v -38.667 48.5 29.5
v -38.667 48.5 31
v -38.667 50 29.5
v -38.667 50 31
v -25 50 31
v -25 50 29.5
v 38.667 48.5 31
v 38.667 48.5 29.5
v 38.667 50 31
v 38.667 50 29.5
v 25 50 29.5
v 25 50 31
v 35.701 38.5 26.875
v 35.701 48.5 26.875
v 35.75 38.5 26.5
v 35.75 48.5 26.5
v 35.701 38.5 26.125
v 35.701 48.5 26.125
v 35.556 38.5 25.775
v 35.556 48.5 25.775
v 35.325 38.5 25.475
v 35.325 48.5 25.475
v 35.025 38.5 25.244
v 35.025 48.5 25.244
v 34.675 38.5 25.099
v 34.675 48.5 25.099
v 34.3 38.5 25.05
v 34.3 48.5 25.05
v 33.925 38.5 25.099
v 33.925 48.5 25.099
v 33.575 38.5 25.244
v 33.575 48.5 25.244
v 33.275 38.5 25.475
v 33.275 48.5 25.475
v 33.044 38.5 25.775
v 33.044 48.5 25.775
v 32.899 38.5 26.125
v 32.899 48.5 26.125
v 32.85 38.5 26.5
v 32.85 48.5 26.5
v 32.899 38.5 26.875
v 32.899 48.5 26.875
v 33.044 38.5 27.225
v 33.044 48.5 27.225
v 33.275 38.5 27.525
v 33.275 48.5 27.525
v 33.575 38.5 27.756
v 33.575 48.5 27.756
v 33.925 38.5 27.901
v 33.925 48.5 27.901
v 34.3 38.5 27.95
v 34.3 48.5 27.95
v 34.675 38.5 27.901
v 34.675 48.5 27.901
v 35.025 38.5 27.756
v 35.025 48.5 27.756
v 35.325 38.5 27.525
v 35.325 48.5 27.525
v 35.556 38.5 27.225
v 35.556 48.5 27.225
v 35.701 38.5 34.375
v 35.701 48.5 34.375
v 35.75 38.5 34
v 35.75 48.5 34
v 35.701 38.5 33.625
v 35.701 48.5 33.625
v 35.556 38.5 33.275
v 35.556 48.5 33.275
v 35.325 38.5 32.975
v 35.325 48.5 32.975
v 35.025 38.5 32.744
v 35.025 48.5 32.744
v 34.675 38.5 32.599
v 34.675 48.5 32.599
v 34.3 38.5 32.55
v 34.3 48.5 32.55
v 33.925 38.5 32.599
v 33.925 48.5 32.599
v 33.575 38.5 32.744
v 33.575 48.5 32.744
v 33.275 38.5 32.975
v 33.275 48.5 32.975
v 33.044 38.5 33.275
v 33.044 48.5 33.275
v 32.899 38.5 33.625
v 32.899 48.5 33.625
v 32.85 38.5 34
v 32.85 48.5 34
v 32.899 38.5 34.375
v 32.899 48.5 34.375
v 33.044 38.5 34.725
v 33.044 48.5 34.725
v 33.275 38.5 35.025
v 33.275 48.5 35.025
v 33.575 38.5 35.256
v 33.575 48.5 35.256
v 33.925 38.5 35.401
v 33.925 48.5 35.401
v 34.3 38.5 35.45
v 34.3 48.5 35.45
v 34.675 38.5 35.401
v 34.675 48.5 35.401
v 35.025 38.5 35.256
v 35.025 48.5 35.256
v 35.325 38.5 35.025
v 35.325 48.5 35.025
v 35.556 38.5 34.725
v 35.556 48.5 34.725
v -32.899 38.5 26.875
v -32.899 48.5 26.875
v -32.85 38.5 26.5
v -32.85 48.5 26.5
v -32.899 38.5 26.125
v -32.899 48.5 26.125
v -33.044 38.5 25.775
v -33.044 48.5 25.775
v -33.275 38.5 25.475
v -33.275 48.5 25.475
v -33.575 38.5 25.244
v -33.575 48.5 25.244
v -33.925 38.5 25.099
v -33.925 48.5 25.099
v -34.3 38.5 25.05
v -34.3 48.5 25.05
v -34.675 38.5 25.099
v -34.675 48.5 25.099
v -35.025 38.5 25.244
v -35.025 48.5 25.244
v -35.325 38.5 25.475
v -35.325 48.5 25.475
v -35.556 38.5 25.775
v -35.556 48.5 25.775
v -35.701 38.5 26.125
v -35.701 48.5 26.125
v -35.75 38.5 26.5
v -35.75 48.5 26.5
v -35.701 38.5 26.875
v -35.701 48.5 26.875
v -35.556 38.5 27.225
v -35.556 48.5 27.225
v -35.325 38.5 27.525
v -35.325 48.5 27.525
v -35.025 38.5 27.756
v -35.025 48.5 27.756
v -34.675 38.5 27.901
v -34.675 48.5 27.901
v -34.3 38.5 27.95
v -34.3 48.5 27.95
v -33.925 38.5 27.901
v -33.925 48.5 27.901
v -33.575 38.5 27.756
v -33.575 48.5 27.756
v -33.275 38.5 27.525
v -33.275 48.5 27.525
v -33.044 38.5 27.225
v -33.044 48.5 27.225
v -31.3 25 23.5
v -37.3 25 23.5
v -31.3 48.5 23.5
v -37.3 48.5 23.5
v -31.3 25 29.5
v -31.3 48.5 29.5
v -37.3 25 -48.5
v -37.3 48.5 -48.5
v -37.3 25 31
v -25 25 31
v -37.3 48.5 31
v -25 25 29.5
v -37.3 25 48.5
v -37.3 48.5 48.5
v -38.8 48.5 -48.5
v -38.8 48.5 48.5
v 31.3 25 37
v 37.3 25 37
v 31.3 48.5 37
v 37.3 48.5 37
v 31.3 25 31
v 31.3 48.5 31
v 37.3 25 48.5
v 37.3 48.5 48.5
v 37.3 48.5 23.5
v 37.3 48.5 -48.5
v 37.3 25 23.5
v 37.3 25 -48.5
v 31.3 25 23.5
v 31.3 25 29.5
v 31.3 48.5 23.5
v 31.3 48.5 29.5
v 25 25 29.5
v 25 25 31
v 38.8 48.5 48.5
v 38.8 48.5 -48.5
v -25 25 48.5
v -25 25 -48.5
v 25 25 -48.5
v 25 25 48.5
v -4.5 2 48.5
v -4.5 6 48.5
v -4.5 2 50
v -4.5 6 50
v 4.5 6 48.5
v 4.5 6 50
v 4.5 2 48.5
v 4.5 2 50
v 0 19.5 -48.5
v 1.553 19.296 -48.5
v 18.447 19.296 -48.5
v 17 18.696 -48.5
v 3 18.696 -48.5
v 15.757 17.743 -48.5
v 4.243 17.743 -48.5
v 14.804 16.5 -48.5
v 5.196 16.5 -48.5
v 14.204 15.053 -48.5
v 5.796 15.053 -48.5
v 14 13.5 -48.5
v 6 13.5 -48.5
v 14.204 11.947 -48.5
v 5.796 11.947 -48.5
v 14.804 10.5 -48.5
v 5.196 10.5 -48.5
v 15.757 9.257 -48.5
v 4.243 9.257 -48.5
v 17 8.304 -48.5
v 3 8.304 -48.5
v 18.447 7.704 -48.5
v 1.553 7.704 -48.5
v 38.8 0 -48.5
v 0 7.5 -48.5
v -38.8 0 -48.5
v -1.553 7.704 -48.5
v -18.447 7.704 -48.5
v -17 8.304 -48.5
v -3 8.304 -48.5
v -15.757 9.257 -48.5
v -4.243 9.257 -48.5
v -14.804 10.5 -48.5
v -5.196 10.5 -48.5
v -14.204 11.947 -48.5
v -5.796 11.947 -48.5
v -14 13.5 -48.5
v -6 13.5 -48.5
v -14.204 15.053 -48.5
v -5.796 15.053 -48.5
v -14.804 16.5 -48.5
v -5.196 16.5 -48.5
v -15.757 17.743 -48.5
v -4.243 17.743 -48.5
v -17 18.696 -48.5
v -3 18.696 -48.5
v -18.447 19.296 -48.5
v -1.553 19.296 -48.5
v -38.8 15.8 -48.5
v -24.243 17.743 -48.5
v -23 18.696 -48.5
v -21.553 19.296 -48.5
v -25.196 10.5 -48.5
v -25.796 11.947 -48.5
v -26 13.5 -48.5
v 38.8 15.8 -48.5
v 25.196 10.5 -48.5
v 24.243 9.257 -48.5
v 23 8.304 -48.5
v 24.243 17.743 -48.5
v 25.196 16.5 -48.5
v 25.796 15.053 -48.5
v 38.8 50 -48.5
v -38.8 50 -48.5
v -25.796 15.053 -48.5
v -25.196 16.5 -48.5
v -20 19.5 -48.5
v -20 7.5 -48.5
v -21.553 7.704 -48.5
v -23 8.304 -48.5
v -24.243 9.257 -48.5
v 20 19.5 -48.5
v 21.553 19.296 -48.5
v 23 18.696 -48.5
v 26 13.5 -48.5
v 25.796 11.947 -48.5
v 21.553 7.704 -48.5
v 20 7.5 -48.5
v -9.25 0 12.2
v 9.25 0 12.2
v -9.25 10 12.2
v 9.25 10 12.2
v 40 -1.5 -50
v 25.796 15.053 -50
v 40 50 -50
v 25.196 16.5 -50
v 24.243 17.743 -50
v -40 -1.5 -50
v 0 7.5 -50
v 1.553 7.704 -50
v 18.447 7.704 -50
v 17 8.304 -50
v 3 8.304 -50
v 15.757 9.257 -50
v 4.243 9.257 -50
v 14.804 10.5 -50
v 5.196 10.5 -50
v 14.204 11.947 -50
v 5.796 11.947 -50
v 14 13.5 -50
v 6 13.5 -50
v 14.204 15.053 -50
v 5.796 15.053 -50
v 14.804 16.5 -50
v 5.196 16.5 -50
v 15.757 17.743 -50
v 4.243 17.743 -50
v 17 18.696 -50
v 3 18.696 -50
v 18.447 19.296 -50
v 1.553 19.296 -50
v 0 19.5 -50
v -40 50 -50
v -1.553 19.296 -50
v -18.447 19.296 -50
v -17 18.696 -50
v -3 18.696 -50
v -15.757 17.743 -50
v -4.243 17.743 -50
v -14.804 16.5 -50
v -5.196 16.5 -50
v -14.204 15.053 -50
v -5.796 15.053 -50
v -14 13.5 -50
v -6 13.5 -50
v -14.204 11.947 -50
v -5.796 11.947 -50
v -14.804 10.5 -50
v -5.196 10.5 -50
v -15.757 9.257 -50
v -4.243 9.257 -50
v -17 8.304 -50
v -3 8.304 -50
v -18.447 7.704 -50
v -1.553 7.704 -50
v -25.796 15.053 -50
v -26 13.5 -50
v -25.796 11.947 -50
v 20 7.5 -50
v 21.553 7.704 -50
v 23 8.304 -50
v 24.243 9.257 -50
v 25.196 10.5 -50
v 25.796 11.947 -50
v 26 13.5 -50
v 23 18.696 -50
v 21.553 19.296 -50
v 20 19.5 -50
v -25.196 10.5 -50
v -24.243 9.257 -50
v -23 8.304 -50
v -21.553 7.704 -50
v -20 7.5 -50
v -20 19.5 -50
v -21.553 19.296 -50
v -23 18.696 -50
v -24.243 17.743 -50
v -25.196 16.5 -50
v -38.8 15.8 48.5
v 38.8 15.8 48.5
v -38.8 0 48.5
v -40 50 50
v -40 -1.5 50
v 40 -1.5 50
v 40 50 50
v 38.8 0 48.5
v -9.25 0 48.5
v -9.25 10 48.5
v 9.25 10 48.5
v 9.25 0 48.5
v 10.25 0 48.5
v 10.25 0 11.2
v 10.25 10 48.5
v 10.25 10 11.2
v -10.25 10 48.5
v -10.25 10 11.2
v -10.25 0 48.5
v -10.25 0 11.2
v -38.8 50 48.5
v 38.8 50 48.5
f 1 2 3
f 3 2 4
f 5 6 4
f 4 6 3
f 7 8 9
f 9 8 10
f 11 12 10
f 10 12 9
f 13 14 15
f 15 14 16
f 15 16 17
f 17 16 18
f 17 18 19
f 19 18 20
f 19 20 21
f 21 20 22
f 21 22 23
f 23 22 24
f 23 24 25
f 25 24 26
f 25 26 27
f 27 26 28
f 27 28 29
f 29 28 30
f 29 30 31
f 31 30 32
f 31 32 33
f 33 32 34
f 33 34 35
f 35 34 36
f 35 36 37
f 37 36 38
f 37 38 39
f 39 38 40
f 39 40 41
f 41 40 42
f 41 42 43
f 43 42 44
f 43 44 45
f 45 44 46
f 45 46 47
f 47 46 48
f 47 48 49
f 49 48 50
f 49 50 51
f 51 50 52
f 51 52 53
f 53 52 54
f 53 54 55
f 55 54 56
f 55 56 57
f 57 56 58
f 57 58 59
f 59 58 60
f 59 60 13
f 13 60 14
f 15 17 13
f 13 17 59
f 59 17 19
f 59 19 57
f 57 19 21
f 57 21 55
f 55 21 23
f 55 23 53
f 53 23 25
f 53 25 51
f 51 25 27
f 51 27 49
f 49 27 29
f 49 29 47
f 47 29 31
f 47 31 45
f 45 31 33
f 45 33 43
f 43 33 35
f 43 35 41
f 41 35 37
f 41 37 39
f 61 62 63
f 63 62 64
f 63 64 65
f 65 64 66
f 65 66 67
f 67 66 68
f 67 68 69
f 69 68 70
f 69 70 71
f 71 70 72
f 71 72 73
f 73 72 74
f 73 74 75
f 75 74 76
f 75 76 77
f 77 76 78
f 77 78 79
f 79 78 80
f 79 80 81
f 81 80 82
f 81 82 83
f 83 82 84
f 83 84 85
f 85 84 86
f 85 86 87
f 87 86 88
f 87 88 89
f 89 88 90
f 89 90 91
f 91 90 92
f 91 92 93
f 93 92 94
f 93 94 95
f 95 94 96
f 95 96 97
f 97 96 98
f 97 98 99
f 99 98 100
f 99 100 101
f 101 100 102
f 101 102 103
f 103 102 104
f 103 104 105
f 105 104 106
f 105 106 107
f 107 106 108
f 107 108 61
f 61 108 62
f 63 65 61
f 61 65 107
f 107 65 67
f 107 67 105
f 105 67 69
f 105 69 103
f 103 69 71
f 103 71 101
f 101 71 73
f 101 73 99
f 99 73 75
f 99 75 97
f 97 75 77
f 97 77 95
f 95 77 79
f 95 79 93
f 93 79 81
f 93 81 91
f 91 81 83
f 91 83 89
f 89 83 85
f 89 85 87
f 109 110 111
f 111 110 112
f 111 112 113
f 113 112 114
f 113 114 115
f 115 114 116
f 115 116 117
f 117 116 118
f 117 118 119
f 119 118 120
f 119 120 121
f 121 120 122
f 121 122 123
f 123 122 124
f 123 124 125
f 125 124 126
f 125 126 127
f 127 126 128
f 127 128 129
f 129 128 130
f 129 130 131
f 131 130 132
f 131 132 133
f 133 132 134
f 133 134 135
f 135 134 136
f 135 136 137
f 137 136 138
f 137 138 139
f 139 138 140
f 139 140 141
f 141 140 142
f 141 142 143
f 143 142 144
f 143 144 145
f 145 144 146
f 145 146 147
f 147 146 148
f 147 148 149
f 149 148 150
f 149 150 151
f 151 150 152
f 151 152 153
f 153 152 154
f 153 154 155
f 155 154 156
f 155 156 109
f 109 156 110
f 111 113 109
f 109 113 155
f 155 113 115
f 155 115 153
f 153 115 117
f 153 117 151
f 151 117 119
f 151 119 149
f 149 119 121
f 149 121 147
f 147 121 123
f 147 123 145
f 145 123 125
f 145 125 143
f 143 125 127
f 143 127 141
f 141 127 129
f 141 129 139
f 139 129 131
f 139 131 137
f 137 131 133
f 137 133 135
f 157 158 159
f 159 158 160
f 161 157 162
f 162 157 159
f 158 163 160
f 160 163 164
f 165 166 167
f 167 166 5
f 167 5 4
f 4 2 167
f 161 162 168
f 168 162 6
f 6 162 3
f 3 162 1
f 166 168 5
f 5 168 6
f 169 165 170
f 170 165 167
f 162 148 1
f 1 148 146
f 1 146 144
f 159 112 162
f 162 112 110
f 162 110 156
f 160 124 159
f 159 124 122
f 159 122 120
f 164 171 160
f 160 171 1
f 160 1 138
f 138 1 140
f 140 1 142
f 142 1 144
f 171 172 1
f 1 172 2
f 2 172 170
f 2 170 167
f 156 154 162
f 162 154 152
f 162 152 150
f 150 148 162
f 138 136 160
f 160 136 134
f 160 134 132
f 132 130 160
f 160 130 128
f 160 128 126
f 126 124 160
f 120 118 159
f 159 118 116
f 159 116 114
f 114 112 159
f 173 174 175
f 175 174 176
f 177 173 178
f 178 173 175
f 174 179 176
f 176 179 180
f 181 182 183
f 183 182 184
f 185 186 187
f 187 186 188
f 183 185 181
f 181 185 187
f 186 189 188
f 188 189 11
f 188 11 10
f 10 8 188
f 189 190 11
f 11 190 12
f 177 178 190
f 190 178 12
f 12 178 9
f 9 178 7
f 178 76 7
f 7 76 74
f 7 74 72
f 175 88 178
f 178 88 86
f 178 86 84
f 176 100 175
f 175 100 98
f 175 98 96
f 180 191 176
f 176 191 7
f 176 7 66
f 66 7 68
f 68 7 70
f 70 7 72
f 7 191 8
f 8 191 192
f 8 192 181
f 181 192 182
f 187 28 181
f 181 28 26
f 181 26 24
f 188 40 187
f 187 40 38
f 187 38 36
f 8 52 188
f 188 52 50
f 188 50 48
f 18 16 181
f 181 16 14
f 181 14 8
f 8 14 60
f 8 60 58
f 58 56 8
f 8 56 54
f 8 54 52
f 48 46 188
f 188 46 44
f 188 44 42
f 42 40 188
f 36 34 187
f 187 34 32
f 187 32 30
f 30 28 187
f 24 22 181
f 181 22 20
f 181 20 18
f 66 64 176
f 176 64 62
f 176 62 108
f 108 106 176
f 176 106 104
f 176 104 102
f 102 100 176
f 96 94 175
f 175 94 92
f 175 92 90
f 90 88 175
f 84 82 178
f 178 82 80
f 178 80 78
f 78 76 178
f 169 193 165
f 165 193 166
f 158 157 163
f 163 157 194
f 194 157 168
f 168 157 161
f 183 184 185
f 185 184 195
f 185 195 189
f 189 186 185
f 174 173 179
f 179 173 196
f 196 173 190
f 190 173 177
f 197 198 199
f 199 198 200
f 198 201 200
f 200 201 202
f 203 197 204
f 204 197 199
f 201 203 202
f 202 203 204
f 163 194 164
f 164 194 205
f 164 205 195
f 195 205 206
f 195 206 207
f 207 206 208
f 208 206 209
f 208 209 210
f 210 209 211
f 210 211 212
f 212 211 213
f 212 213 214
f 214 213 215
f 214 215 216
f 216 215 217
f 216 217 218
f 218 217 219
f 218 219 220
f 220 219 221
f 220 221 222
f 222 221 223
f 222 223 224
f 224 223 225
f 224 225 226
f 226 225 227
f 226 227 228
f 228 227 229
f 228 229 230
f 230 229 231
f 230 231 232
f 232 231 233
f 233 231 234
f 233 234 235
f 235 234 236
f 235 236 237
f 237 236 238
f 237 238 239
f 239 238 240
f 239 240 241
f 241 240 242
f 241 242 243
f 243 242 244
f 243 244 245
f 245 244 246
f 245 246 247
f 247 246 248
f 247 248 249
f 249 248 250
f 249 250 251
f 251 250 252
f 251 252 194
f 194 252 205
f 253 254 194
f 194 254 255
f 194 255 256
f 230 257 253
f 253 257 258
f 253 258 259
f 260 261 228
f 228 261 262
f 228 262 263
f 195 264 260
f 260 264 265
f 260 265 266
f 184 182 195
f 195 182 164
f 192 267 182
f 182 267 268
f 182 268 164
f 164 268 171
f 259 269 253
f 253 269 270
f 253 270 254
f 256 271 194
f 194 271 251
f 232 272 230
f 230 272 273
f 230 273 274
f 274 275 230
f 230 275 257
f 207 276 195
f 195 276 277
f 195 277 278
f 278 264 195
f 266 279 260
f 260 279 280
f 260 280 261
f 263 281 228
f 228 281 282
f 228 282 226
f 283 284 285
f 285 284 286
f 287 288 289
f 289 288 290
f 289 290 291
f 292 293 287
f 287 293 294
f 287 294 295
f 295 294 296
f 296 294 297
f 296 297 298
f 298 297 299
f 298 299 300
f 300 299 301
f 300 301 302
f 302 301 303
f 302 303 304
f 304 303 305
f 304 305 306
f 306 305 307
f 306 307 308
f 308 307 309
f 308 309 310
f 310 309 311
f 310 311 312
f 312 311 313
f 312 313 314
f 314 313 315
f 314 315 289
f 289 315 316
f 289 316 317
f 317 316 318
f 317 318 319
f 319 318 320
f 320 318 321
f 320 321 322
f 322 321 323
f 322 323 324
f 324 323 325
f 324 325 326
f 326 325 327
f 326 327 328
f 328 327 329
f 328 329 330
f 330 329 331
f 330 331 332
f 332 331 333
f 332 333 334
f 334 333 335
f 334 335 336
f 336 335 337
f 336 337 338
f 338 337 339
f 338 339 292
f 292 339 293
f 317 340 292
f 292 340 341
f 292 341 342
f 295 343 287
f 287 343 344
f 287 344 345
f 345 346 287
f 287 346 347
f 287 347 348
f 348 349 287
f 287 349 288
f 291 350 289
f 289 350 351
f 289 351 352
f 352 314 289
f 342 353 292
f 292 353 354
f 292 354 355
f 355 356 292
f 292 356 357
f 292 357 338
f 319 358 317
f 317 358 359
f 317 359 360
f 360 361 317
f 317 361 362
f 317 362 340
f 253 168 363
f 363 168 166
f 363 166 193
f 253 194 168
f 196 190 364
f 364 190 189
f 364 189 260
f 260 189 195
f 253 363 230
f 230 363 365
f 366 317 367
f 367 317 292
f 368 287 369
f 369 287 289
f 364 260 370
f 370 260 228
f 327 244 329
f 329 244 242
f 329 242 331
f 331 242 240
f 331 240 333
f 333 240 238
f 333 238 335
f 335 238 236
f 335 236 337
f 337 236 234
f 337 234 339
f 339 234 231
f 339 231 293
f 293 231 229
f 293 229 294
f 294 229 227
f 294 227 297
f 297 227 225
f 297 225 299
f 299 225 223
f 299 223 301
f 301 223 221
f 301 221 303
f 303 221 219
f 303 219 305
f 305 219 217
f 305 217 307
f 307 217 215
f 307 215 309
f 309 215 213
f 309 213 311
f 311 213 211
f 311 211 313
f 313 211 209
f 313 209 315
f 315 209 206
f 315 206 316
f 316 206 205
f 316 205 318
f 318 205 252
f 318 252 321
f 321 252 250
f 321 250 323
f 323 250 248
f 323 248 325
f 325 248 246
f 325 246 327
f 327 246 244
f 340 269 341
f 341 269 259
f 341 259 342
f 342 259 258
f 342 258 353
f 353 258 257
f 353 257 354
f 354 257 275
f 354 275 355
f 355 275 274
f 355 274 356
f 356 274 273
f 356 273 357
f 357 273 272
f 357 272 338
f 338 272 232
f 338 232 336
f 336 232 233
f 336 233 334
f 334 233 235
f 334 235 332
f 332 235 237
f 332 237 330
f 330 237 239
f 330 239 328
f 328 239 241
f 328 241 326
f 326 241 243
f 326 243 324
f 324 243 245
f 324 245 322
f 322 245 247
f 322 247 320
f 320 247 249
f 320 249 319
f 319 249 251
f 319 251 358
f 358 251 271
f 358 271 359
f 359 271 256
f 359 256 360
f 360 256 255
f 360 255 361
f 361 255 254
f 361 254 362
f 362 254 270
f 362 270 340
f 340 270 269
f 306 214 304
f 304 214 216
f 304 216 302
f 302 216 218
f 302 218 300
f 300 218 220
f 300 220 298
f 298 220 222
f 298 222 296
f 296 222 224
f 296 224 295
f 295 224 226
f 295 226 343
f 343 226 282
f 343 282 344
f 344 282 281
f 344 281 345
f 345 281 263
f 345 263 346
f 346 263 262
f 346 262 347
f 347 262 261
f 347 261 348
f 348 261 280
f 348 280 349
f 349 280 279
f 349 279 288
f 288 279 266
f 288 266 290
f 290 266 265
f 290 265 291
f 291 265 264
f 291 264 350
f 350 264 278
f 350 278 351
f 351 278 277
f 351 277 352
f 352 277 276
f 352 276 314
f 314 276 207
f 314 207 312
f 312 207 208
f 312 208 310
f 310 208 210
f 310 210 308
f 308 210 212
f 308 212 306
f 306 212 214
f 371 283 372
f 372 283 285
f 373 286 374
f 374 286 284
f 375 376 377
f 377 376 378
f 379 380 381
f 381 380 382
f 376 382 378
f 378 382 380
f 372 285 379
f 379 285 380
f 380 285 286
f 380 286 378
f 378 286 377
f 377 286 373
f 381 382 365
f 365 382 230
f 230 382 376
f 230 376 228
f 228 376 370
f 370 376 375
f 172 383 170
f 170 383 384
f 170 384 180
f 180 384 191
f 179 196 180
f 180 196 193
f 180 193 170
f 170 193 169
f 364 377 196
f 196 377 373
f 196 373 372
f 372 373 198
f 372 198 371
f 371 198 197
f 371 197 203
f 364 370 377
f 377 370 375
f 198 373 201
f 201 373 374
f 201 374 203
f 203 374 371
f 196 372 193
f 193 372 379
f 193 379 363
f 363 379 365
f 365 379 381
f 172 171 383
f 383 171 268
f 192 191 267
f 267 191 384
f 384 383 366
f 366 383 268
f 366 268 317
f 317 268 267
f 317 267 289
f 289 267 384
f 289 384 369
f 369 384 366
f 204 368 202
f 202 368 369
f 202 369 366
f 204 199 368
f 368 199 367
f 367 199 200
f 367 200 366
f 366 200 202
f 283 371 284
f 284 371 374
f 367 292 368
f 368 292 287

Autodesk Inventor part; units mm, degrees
ref_plane "YZ Plane" through (0, 0, 0) normal (1, 0, 0) x (0, 1, 0)
ref_plane "XZ Plane" through (0, 0, 0) normal (0, 1, 0) x (-1, 0, 0)
ref_plane "XY Plane" through (0, 0, 0) normal (0, 0, 1) x (1, 0, 0)
sketch "Sketch1" plane through (0, 0, 0) normal (0, 1, 0) x (-1, 0, 0)
  line L0 (40, 50) -> (-40, 50)
  line L1 (-40, 50) -> (-40, -50)
  line L2 (-40, -50) -> (40, -50)
  line L3 (40, -50) -> (40, 50)
  line L4 (40, 50) -> (-40, -50) construction
  line L5 (-40, 50) -> (40, -50) construction
  point P0 (0, 0)
  dimension "box_width" = 80
  dimension "box_height" = 100
extrude "Base" add sketch "Sketch1" against normal blind 1.5
sketch "Sketch2" plane through (0, 0, 0) normal (0, 1, 0) x (-1, 0, 0)
  line L0 (40, -50) -> (-40, -50) projected
  line L1 (40, 50) -> (-40, 50)
  line L2 (-40, 50) -> (-40, -50)
  line L3 (-40, -50) -> (40, -50)
  line L4 (40, -50) -> (40, 50)
  line L5 (40, 50) -> (-40, -50) construction
  line L6 (-40, 50) -> (40, -50) construction
  line L7 (38.8, 48.5) -> (-38.8, 48.5)
  line L8 (-38.8, 48.5) -> (-38.8, -48.5)
  line L9 (-38.8, -48.5) -> (38.8, -48.5)
  line L10 (38.8, -48.5) -> (38.8, 48.5)
  line L11 (38.8, 48.5) -> (-38.8, -48.5) construction
  line L12 (-38.8, 48.5) -> (38.8, -48.5) construction
  point P0 (0, 0)
  dimension "wall_thickness" = 1.5
extrude "Wall" add sketch "Sketch2" along normal blind 50
sketch "Sketch3" plane through (0, 0, 0) normal (0, 1, 0) x (-1, 0, 0)
  line L0 (-9.25, 49) -> (9.25, 49)
  line L1 (9.25, 49) -> (9.25, 12.2)
  line L2 (9.25, 12.2) -> (-9.25, 12.2)
  line L3 (-9.25, 12.2) -> (-9.25, 49)
  line L4 (-9.25, 49) -> (9.25, 12.2) construction
  line L5 (9.25, 49) -> (-9.25, 12.2) construction
  line L6 (0, 30.6) -> (0, 0) construction
  line L7 (10.25, 50) -> (-10.25, 50)
  line L8 (-10.25, 50) -> (-10.25, 11.2)
  line L9 (-10.25, 11.2) -> (10.25, 11.2)
  line L10 (10.25, 11.2) -> (10.25, 50)
  line L11 (10.25, 50) -> (-10.25, 11.2) construction
  line L12 (-10.25, 50) -> (10.25, 11.2) construction
  line L13 (40, 50) -> (-40, 50) projected
  point P0 (0, 50)
  dimension "d7" = 36.8
  dimension "d8" = 18.5
  dimension "d9" = 1
  dimension "d10" = 1
extrude "Teensy Wall" add sketch "Sketch3" along normal blind 10
sketch "Sketch4" plane through (40, -1.5, -50) normal (0, 0, -1) x (-1, 0, 0)
  line L0 (78.8, 51.5) -> (1.2, 51.5) construction
  line L1 (1.2, 51.5) -> (78.8, 51.5) construction
  line L2 (40, 51.5) -> (40, 15) construction
  line L3 (40, 15) -> (20, 15) construction
  circle A0 centre (20, 15) radius 6
  line L4 (40, 15) -> (40, 0) construction
  line L5 (80, 0) -> (0, 0) construction
  circle A1 centre (40, 15) radius 6
  circle A2 centre (60, 15) radius 6
  dimension "d21" = 12
  dimension "d23" = 20
  dimension "d59" = 20
extrude "BNC Holes" cut sketch "Sketch4" against normal up to surface (1.5 mm away)
sketch "Sketch7" plane through (-38.8, 0, -48.5) normal (0, 0, 1) x (1, 0, 0)
  line L0 (78.8, 50) -> (-1.2, 50) projected
  line L1 (-1.2, -1.5) -> (-1.2, 50) projected
  line L2 (-1.2, 50) -> (-1.2, 25) construction
  line L3 (-1.2, 25) -> (13.8, 25)
  line L4 (13.8, 25) -> (-1.2, 15)
  line L5 (-1.2, 15) -> (-1.2, 25)
  line L6 (38.8, 50) -> (38.8, 0) construction
  line L7 (78.8, -1.5) -> (78.8, 50)
  line L8 (78.8, 50) -> (78.8, 25) construction
  line L9 (78.8, 25) -> (63.8, 25)
  line L10 (63.8, 25) -> (78.8, 15)
  line L11 (78.8, 15) -> (78.8, 25)
  point P0 (-1.2, 30)
  dimension "d32" = 25
  dimension "d33" = 10
  dimension "d34" = 15
extrude "Battery Support" add sketch "Sketch7" along normal up to next
sketch "Sketch8" plane through (-40, -1.5, 50) normal (0, 0, 1) x (1, 0, 0)
  line L0 (78.8, 51.5) -> (1.2, 51.5) construction
  line L1 (40, 51.5) -> (40, 1.5) construction
  line L2 (35.5, 3.5) -> (44.5, 3.5)
  line L3 (44.5, 3.5) -> (44.5, 7.5)
  line L4 (44.5, 7.5) -> (35.5, 7.5)
  line L5 (35.5, 7.5) -> (35.5, 3.5)
  line L6 (35.5, 3.5) -> (44.5, 7.5) construction
  line L7 (44.5, 3.5) -> (35.5, 7.5) construction
  point P0 (40, 5.5)
  dimension "d36" = 9
  dimension "d37" = 4
  dimension "d38" = 2
extrude "USB Hole" cut sketch "Sketch8" against normal up to next
sketch "Sketch9" plane through (-38.8, 25, -48.5) normal (0, 1, 0) x (1, 0, 0)
  line L0 (0, -97) -> (0, 0) projected
  line L1 (13.8, 0) -> (13.8, -97) projected
  line L2 (0, -79.5) -> (13.8, -79.5)
  line L3 (13.8, -79.5) -> (13.8, -78)
  line L4 (13.8, -78) -> (0, -78)
  line L5 (0, -78) -> (0, -79.5)
  line L6 (0, 0) -> (77.6, 0) projected
  line L7 (63.8, 0) -> (63.8, -97) projected
  line L8 (63.8, -79.5) -> (77.6, -79.5)
  line L9 (77.6, -79.5) -> (77.6, -78)
  line L10 (77.6, -78) -> (63.8, -78)
  line L11 (63.8, -78) -> (63.8, -79.5)
  line L12 (0, -97) -> (28.55, -97) projected
  line L13 (0, -79.5) -> (1.5, -79.5)
  line L14 (1.5, -79.5) -> (1.5, -97)
  line L15 (1.5, -97) -> (0, -97)
  line L16 (0, -97) -> (0, -79.5)
  line L17 (49.05, -97) -> (77.6, -97) projected
  line L18 (77.6, -79.5) -> (76.1, -79.5)
  line L19 (76.1, -79.5) -> (76.1, -97)
  line L20 (76.1, -97) -> (77.6, -97)
  line L21 (77.6, -97) -> (77.6, -79.5)
  line L22 (77.6, 0) -> (77.6, -97) projected
  line L23 (76.1, -79.5) -> (70.1, -79.5)
  line L24 (70.1, -79.5) -> (70.1, -85.5)
  line L25 (70.1, -85.5) -> (76.1, -85.5)
  line L26 (76.1, -85.5) -> (76.1, -79.5)
  line L27 (0, -78) -> (1.5, -78)
  line L28 (1.5, -78) -> (1.5, 0)
  line L29 (1.5, 0) -> (0, 0)
  line L30 (0, 0) -> (0, -78)
  line L31 (77.6, -78) -> (76.1, -78)
  line L32 (76.1, -78) -> (76.1, 0)
  line L33 (76.1, 0) -> (77.6, 0)
  line L34 (77.6, 0) -> (77.6, -78)
  line L35 (76.1, -78) -> (70.1, -78)
  line L36 (70.1, -78) -> (70.1, -72)
  line L37 (70.1, -72) -> (76.1, -72)
  line L38 (76.1, -72) -> (76.1, -78)
  line L39 (77.6, 0) -> (0, 0) projected
  line L40 (1.5, 0) -> (6.9705, 0)
  line L41 (1.5, -6.3005) -> (1.5, 0)
  line L42 (1.5, -78) -> (6.9, -78)
  line L43 (1.5, -72.6667) -> (1.5, -78)
  line L44 (1.5, -78) -> (6.9, -78)
  line L45 (1.5, -72) -> (1.5, -78)
  line L46 (1.5, -78) -> (7.5, -78)
  line L47 (7.5, -78) -> (7.5, -72)
  line L48 (7.5, -72) -> (1.5, -72)
  line L49 (1.5, -72) -> (1.5, -78)
  point P0 (38.8, -48.5)
  dimension "d41" = 78
  dimension "d42" = 1.5
  dimension "d45" = 1.5
  dimension "d47" = 1.5
  dimension "d48" = 6
  dimension "d56" = 17.5
extrude "Plate Support" add sketch "Sketch9" along normal blind 23.5 contours L0 L2 L14 L12 | L0 L4 L1 L2 | L0 L6 L28 L4 | L28 L48 L47 L4 | L6 L22 L10 L32 | L10 L9 L8 L7 | L32 L10 L36 L37 | L8 L19 L25 L24 | L21 L17 L19 L8
sketch "Sketch10" plane through (-38.8, 48.5, -48.5) normal (0, 1, 0) x (1, 0, 0)
  circle A0 centre (73.1, -82.5) radius 1.45
  line L0 (63.8, -78) -> (70.1, -78) construction
  line L1 (70.1, -85.5) -> (70.1, -79.5) construction
  line L2 (70.1, -79.5) -> (73.1, -82.5) construction
  line L3 (70.1, -85.5) -> (76.1, -85.5) construction
  line L4 (73.1, -82.5) -> (76.1, -85.5) construction
  line L5 (73.1, -82.5) -> (70.1, -85.5) construction
  circle A1 centre (73.1, -75) radius 1.45
  line L6 (73.1, -75) -> (70.1, -72) construction
  line L7 (70.1, -72) -> (76.1, -72) construction
  line L8 (76.1, -72) -> (73.1, -75) construction
  line L9 (70.1, -78) -> (73.1, -75) construction
  line L10 (1.5, -72) -> (1.5, 0) projected
  line L11 (1.5, -78) -> (7.5, -78)
  line L12 (7.5, -78) -> (7.5, -72)
  line L13 (7.5, -72) -> (1.5, -72)
  line L14 (1.5, -72) -> (1.5, -78)
  line L15 (70.1, -72) -> (70.1, -78) projected
  circle A2 centre (4.5, -75) radius 1.45
  line L16 (7.5, -78) -> (7.5, -72) construction
  line L17 (4.5, -75) -> (7.5, -78) construction
  line L18 (4.5, -75) -> (7.5, -72) construction
  line L19 (4.5, -75) -> (1.5, -72) construction
  point P0 (38.8, -48.5)
  dimension "d49" = 2.9
  dimension "d52" = 2.9
  dimension "d53" = 2.9
extrude "Holes" cut sketch "Sketch10" against normal blind 10 contours A0 | A1 | A2
sketch "Sketch11" plane through (-38.8, 48.5, -48.5) normal (0, 1, 0) x (1, 0, 0)
  line L0 (13.8, -79.5) -> (13.8, -78) projected
  line L1 (13.8, -78) -> (13.8, -79.5)
  line L2 (13.8, -79.5) -> (0.1333, -79.5)
  line L3 (0.1333, -79.5) -> (0.1333, -78)
  line L4 (0.1333, -78) -> (13.8, -78)
  line L5 (70.1, -78) -> (63.8, -78) projected
  line L6 (63.8, -78) -> (63.8, -79.5)
  line L7 (63.8, -79.5) -> (77.4667, -79.5)
  line L8 (77.4667, -79.5) -> (77.4667, -78)
  line L9 (77.4667, -78) -> (63.8, -78)
  point P0 (38.8, -48.5)
extrude "Extrusion10" add sketch "Sketch11" along normal blind 1.5
properties part number "teensy_box"
